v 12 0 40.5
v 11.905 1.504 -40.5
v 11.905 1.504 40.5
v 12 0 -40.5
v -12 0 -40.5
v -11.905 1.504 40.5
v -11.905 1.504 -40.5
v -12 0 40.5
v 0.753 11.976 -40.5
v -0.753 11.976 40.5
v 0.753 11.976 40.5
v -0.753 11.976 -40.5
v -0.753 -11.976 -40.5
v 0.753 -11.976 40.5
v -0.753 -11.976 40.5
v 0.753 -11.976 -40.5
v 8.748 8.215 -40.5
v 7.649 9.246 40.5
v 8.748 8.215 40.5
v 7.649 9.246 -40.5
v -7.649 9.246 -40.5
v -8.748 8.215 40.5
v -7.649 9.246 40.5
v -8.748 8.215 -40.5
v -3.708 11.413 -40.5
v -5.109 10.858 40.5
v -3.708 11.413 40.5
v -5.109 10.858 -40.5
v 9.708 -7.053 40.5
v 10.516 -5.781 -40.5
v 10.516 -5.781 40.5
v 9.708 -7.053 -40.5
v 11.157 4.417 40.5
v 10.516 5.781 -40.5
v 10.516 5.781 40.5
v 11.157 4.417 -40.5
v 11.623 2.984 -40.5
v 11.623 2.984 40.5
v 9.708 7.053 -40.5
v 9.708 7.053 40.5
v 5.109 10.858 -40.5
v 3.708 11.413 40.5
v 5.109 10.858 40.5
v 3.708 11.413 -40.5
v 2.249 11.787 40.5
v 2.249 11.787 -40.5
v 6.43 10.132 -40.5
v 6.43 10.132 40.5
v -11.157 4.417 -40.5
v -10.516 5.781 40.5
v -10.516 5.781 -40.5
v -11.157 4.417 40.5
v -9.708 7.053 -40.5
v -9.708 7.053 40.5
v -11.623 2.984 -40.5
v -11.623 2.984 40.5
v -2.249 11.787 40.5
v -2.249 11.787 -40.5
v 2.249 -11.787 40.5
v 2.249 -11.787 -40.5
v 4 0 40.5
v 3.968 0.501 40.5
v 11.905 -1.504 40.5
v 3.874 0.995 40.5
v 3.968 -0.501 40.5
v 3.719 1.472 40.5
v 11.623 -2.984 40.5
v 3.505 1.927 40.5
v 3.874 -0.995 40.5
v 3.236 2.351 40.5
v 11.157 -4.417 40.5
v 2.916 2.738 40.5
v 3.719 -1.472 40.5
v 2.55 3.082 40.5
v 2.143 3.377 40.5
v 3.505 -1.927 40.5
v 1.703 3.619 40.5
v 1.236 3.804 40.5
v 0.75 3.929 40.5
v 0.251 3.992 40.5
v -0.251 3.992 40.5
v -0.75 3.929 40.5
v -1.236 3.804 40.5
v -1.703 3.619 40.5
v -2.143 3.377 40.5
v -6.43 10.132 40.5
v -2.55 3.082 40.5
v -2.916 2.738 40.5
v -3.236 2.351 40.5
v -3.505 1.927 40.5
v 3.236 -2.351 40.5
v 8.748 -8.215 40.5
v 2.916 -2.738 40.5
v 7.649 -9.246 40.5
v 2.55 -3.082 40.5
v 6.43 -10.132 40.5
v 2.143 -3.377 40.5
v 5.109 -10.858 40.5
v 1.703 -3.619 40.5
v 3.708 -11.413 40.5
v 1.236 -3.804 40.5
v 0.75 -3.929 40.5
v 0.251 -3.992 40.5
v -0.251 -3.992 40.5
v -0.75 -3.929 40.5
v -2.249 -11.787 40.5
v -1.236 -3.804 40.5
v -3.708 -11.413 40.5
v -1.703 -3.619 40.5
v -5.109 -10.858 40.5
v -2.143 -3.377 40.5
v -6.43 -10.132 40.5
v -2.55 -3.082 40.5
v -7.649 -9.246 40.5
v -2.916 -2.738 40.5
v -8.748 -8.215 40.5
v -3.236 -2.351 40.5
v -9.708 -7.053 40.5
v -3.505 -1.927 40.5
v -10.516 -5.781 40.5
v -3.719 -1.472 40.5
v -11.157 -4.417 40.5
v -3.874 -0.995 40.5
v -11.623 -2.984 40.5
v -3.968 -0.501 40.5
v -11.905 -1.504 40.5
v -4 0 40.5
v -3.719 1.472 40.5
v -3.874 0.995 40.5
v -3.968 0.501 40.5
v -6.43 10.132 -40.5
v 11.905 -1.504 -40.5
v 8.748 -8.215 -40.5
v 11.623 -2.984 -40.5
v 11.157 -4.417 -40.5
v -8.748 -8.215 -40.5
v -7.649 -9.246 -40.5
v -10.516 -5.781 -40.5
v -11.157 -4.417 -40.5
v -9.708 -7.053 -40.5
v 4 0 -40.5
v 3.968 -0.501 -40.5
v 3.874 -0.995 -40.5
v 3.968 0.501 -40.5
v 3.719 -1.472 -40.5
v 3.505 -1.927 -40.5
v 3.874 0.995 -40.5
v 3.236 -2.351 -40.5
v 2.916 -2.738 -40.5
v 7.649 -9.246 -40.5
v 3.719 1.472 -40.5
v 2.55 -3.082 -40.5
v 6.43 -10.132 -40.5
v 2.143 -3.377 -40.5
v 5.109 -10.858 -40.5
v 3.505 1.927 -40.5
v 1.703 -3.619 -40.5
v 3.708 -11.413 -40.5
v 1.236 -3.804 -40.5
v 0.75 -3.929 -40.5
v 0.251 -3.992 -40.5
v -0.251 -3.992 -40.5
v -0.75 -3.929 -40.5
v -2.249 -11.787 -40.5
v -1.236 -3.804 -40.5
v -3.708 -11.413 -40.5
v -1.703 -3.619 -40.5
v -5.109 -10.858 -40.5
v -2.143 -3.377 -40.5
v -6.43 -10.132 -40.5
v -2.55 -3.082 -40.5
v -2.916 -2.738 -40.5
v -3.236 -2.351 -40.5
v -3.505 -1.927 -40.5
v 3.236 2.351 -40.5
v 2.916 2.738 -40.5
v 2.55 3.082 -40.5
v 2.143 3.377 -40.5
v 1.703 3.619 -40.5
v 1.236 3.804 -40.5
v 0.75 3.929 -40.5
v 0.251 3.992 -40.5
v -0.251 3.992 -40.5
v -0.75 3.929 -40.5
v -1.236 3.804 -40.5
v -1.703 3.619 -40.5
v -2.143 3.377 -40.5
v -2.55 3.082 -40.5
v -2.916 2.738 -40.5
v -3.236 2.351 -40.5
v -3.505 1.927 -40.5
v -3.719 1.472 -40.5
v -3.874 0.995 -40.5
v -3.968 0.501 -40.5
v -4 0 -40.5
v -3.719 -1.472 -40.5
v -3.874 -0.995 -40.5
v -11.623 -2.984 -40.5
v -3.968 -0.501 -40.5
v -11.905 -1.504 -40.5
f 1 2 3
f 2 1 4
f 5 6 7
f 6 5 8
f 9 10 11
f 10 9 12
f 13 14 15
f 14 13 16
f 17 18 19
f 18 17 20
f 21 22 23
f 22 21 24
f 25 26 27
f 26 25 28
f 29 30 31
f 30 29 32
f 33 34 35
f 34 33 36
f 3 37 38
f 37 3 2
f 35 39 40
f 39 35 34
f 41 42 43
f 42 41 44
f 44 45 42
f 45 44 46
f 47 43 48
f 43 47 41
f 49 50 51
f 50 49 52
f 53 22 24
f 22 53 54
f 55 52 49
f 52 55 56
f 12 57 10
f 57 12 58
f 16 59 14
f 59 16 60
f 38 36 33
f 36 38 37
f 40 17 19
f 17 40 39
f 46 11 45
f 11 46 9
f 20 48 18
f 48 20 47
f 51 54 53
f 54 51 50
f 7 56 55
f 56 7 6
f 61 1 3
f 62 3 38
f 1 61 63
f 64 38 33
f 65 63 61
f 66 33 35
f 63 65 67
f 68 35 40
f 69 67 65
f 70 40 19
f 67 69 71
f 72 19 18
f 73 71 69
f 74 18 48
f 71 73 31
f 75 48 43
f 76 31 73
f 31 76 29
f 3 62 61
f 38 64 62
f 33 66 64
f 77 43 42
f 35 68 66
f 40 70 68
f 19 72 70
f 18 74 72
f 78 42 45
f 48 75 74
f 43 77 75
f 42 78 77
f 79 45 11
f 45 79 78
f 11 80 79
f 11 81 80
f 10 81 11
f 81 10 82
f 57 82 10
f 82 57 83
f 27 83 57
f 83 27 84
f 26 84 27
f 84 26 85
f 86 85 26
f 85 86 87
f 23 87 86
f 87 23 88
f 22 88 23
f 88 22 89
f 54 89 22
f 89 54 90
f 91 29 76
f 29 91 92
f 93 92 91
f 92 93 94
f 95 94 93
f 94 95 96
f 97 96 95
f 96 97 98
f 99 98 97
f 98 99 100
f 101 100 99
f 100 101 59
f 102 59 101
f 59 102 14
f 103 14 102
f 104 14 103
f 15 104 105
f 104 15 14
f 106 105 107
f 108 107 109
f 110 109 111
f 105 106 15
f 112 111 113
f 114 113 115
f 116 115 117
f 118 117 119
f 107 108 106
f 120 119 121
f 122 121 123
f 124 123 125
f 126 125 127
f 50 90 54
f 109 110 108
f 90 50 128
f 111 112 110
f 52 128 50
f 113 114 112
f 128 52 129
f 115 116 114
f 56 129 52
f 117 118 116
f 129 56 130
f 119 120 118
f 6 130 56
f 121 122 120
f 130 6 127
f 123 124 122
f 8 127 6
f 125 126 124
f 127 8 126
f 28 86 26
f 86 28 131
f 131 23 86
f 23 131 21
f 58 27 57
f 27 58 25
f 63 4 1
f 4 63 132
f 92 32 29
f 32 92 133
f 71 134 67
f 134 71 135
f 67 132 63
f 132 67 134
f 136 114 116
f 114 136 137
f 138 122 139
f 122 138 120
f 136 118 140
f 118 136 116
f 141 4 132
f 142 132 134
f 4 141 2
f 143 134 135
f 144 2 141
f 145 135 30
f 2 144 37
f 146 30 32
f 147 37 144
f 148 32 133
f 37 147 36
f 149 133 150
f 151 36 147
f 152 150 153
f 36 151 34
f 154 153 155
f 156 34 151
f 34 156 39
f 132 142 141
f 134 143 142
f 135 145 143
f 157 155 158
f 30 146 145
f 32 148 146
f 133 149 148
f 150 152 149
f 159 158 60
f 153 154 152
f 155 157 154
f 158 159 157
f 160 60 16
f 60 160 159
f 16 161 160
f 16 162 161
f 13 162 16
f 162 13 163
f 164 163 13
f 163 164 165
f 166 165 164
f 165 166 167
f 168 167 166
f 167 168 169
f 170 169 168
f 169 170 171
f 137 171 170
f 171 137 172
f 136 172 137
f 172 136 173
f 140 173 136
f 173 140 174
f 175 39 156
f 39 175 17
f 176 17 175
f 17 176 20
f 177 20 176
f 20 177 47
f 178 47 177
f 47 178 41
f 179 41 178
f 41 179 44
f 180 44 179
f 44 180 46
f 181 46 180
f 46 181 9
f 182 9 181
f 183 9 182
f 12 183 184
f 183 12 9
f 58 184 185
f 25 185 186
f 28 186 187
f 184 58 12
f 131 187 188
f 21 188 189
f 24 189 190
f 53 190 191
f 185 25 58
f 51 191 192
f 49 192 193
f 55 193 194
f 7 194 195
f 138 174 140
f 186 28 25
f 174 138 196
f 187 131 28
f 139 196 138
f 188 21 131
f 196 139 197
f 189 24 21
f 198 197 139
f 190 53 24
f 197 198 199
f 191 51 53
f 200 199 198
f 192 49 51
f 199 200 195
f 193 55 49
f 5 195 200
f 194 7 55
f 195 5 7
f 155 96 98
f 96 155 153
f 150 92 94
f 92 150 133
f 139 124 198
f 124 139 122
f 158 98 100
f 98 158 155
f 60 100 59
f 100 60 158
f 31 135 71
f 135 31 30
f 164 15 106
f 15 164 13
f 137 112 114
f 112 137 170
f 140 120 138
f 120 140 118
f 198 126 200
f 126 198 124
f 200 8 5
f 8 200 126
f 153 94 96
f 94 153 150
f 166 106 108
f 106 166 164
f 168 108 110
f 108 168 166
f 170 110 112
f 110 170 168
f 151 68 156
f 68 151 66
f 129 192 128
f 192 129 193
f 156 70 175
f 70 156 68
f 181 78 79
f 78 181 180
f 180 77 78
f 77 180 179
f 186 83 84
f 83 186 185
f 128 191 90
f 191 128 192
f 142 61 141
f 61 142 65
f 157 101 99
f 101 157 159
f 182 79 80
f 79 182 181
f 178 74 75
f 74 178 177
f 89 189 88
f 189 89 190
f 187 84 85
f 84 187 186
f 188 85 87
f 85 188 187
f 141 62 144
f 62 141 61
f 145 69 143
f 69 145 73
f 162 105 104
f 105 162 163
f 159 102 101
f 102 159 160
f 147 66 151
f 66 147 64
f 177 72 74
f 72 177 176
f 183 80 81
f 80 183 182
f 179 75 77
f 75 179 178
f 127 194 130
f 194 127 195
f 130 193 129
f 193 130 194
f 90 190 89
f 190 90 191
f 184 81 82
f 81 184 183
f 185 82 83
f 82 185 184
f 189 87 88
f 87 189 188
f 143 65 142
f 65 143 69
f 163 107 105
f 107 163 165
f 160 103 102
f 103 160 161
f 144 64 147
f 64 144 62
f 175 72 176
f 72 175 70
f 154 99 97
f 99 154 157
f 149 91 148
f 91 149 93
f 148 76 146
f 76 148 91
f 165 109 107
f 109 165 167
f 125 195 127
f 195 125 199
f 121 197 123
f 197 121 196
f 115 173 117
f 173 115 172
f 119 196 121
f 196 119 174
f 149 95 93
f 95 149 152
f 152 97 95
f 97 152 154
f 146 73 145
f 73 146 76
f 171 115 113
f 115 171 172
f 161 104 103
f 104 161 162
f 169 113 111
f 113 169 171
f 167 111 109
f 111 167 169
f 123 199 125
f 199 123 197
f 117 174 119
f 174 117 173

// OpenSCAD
$fn = 50;


difference() {
	union() {
		translate(v = [0, 0, -40.5000000000]) {
			cylinder(h = 81, r = 12.0000000000);
		}
	}
	union() {
		translate(v = [0, 0, -100.0000000000]) {
			cylinder(h = 200, r = 4);
		}
	}
}
